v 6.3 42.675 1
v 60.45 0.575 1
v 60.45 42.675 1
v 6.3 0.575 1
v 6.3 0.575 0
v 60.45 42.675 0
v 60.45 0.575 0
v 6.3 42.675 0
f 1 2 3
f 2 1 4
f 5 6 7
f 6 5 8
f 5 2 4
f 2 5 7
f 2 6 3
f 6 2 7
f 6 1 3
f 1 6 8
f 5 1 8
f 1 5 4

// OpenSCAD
// file: ../libraries/commons.scad
module forEachCoord(throws_coords_list) {
    for (coords = throws_coords_list)
        translate(
            [
                coords[0] == undef ? 0 : coords[0],
                coords[1] == undef ? 0 : coords[1],
                coords[2] == undef ? 0 : coords[2],
            ]
        )
            children();
}


// @todo
module forEachPointCoord(throws_coords_list) {
    for (coords = throws_coords_list)
        translate(
            [
                coords[0] == undef ? 0 : coords[0],
                coords[1] == undef ? 0 : coords[1],
                coords[2] == undef ? 0 : coords[2],
            ]
        )
            children();
}
// file: ../enveloppes/screen-enveloppe.scad
include <../assets/lcd-screen/configurations.scad>

use <../libraries/commons.scad>

/**
 * screenFixationThrows
 * @name screenFixationThrows
 * @description screenFixationThrows
 * @type enveloppe
 * @parent root
 */
module screenFixationThrows(
    electronic_board_x_size = screen_asset_electronic_board_x_size,
    electronic_board_y_size = screen_asset_electronic_board_y_size,
    x_margin_left = screen_asset_x_margin_throws_left,
    x_margin_right = screen_asset_x_margin_throws_right,
    y_margin_top = screen_asset_y_margin_throws_top,
    y_margin_bottom = screen_asset_y_margin_throws_bottom,
    throw_diameter = 3.1,
    $fn = $fn
) {

    throws_z_size = 20;

    offset_coords_throw_list = [
        [
            x_margin_left,
            y_margin_bottom,
        ],
        [
            x_margin_left,
            electronic_board_y_size - y_margin_top,
        ],
        [
            electronic_board_x_size - x_margin_right,
            electronic_board_y_size - y_margin_top,
        ],
        [
            electronic_board_x_size - x_margin_right,
            y_margin_bottom,
        ]
    ];

    // Fixations throws
    translate([0,0, -throws_z_size / 2])
        forEachCoord(offset_coords_throw_list)
            cylinder(h = throws_z_size, d = throw_diameter, center = false, $fn = $fn);
}


module screenMainThrow(
    electronic_board_x_size = screen_asset_electronic_board_x_size,
    electronic_board_y_size = screen_asset_electronic_board_y_size,
    screen_external_x_size = screen_asset_screen_external_x_size,
    screen_external_y_size = screen_asset_screen_external_y_size,
    screen_throw_x_margin = 2.8,
    screen_throw_y_margin = 0.5
) {

    throws_z_size = 20;

    // Main screen throw
    translate([
        (electronic_board_x_size - screen_external_x_size) / 2 - screen_throw_x_margin,
        (electronic_board_y_size - screen_external_y_size) / 2 - screen_throw_y_margin,
        -throws_z_size / 2
    ])
        cube(
            [
                screen_external_x_size + (screen_throw_x_margin * 2),
                screen_external_y_size + (screen_throw_y_margin * 2),
                throws_z_size,
            ]
        );
}


module screenConnectorThrow(
    electronic_board_y_size = screen_asset_electronic_board_y_size
) {
    throws_z_size = 20;

    translate(
        [
            0.85 - (0.5 / 2),
            11.3,
            -throws_z_size / 2
        ]
    )
        cube(
            [
                2.5 + 0.5,
                electronic_board_y_size - (11.3 * 2),
                throws_z_size
            ]
        );
}


module sceenVisibleZoneCube(
    x_margin = 0,
    y_margin = 0,
    z_size = 0,

    electronic_board_x_size = screen_asset_electronic_board_x_size,
    electronic_board_y_size = screen_asset_electronic_board_y_size,
    screen_external_x_size = screen_asset_screen_external_x_size,
    screen_external_y_size = screen_asset_screen_external_y_size,
) {

    translate([
        (electronic_board_x_size - screen_external_x_size) / 2 + 1 - x_margin,
        (electronic_board_y_size - screen_external_y_size) / 2 + 1 - y_margin,
        0
    ])
        cube(
            [
                screen_external_x_size - 1 - 6.5 + (x_margin * 2),
                screen_external_y_size - 1 - 1 + (y_margin * 2),
                z_size,
            ]
        );
}
// file: ../configurations/global.scad
housing_facades_throws_diameter = 3.8;

// external size
case_external_x_size = 90;
case_external_y_size = 140;
case_external_z_size = 38;
case_external_panes_thickness = 4.8;

facade_front_round_edges_radius = 5;
facade_throws_margin = 5;

facade_front_fixation_throws_diameter = housing_facades_throws_diameter;

// facade corners
facade_corners_offset_lenght = 9;
facade_corners_main_x_size = 19;
facade_corners_main_y_size = 19;
facade_corners_main_thickness = 11;
facade_corners_correction_offset_length = 0.2;
facade_corners_correction_offset_thickness = 0.0;
facade_fn = 100;


facade_controller_coords = [
    case_external_x_size / 2,
    case_external_y_size / 2 - 30,
];


// Screen frames
screen_frame_electronic_board_margin = 3;
screen_frame_throw_diameter = 3.5;
screen_frame_piece_z_size = 1.5;
screen_frame_piece_glass_embedding_margin = 1;
screen_frame_piece_glass_embedding_z_depth = 1;
screen_frame_facade_piece_z_size = 1;
screen_frame_fn = 100;

screen_glass_visible_zone_x_margin = 0.7;
screen_glass_visible_zone_y_margin = 0.7;
screen_glass_z_size = 1;

facade_screen_coords = [
    case_external_x_size / 2,
    case_external_y_size / 2 + 28,
];


// Generics
insert_throw_diameter = 4.2;
insert_throw_length = 6 + 2;


// Controller facade
controller_breadboard_x_size_point = 28;
controller_breadboard_y_size_point = 9;

controller_facade_z_size = 2;
controller_facade_button_throw_margin = 1;
controller_facade_small_button_throw_margin = 0.5;
controller_facade_a_b_button_throw_margin = 0.5;

controller_facade_border_rounded_border_1 = 5;
controller_facade_border_rounded_border_2 = 4;

controller_facade_with_border_x_size = 82;
controller_facade_with_border_y_size = 47;

controller_facade_border_throws_margin = 5;
controller_braidboard_throw_margin = 1;

controller_facade_border_fn = 80;


// Cross Button
controller_cross_button_x_y_size = 20;
controller_cross_button_z_size = 4;
controller_cross_button_thickness = 6;
controller_cross_button_round_edges_radius = 1;
controller_cross_button_support_x_y_size = 22;
controller_cross_button_support_z_size = 1;
controller_cross_button_fn = 150;


// A and B Buttons
controller_a_b_button_diameter = 7.5;
controller_a_b_button_z_size = 4;
controller_a_b_button_support_diameter = 9.5;
controller_a_b_button_support_z_size = 1;
controller_a_b_button_fn = 80;


// small Buttons
controller_small_button_diameter = 5.5;
controller_small_button_z_size = 3;
controller_small_button_support_diameter = 7.5;
controller_small_button_support_z_size = 1;
controller_small_button_fn = 80;

// Directional cross
controller_directional_cross_points_coords = [6, 5];
controller_start_button_points_coords = [14, 3];
controller_select_button_points_coords = [18, 3];
controller_menu_button_points_coords = [14, 7];
controller_option_button_points_coords = [18, 7];
controller_a_button_points_coords = [23, 4];
controller_b_button_points_coords = [27, 6];
controller_bolt_throws_list = [
    [2, 2],
    [2, 8],
    [10, 2],
    [10, 8],
    [27, 2],
    [23, 8],
];


// usb charger holder
usb_charger_support_total_x_size = 17.57 + 15;
usb_charger_support_total_y_size = 12;
usb_charger_support_total_z_size = 2;


usb_charger_fixation_support_z_size = 4.5;
usb_charger_encaps_x_size = 17.57 + 1;
usb_charger_encaps_y_size = 27.85 + 1;
usb_charger_encaps_z_size = 1;

usb_charger_facade_x_fixation_spacing = 42;
usb_charger_facade_y_size = 1.36;
usb_charger_facade_z_size = 14;

usb_charger_throw_diameter = 3.5;
usb_charger_facade_holder_z_offset = 3.5; //
usb_charger_fixation_facade_y_margin = 0.5;
usb_charger_throw_offset_y = 4.5;
usb_charger_throw_offset_x = 3.5;
usb_charger_facade_fn = 100;

usb_charger_external_facade_main_throw_margin = 2;
usb_charger_external_facade_main_throw_diameter = housing_facades_throws_diameter;

usb_charger_coords = [
    28, 15
];


facade_top_on_off_button_throw_diameter = 12.8;

facade_top_on_off_button_coords = [
    case_external_x_size / 2 + 18,
    case_external_z_size / 2
];


// Bolt join Piece Mother board
bolt_join_mother_board_internal_diameter = 3.5;
bolt_join_mother_board_external_diameter = 3.5 + (0.4 * 6);
bolt_join_mother_board_height = 3;

// Bolt join Piece GamePadController
bolt_join_game_pad_internal_diameter = 3.5;
bolt_join_game_pad_external_diameter = 3.5 + (0.4 * 6);
bolt_join_game_pad_height = 6.5;

bolt_join_fn = 500;


// Mother board breadboard
mother_board_x_size_point = 25;
mother_board_y_size_point = 32;

mother_board_coords = [
    case_external_x_size / 2 - ((mother_board_x_size_point + 1) * 2.54) / 2,
    44,
    3
];

mother_board_bolt_throws_list = [
    [3, 2],
    [3, 17],
    [23, 2],
    [23, 17],
];


// Speaker
speaker_facade_throw_diameter = 28 + 1;
speaker_facade_z_size = 1.36;
speaker_facade_rounded_radius = 5;
// file: ../assets/lcd-screen/configurations.scad
screen_asset_electronic_board_x_size = 72.25;
screen_asset_electronic_board_y_size = 43.25;
screen_asset_electronic_board_z_size = 1.25;

screen_asset_screen_external_x_size = 60.25;
screen_asset_screen_external_y_size = 42.7;
screen_asset_screen_external_z_size = 4 - 1.25;

screen_asset_throw_diameter = 3.1;

screen_asset_x_margin_throws_left = 1.6 + 1.55;
screen_asset_x_margin_throws_right = 1.5 + 1.55;
screen_asset_y_margin_throws_top = 1.55 + 1.55;
screen_asset_y_margin_throws_bottom = 1.4 + 1.55;
// main file
include <../assets/lcd-screen/configurations.scad>
include <../configurations/global.scad>

use <../enveloppes/screen-enveloppe.scad>

/**
 * screenFrameFacadePiece
 * @name screenFrameFacadePiece
 * @description Piece CNC cutted
 * @type piece
 * @parent screenComponent
 * @stl
 */
module screenGlassPiece(
    visible_zone_x_margin = screen_glass_visible_zone_x_margin,
    visible_zone_y_margin = screen_glass_visible_zone_y_margin,
    z_size = screen_glass_z_size
) {
    color("LightGray", 0.5)
        sceenVisibleZoneCube(
            x_margin = visible_zone_x_margin,
            y_margin = visible_zone_y_margin,
            z_size = z_size
        );
}

screenGlassPiece();
